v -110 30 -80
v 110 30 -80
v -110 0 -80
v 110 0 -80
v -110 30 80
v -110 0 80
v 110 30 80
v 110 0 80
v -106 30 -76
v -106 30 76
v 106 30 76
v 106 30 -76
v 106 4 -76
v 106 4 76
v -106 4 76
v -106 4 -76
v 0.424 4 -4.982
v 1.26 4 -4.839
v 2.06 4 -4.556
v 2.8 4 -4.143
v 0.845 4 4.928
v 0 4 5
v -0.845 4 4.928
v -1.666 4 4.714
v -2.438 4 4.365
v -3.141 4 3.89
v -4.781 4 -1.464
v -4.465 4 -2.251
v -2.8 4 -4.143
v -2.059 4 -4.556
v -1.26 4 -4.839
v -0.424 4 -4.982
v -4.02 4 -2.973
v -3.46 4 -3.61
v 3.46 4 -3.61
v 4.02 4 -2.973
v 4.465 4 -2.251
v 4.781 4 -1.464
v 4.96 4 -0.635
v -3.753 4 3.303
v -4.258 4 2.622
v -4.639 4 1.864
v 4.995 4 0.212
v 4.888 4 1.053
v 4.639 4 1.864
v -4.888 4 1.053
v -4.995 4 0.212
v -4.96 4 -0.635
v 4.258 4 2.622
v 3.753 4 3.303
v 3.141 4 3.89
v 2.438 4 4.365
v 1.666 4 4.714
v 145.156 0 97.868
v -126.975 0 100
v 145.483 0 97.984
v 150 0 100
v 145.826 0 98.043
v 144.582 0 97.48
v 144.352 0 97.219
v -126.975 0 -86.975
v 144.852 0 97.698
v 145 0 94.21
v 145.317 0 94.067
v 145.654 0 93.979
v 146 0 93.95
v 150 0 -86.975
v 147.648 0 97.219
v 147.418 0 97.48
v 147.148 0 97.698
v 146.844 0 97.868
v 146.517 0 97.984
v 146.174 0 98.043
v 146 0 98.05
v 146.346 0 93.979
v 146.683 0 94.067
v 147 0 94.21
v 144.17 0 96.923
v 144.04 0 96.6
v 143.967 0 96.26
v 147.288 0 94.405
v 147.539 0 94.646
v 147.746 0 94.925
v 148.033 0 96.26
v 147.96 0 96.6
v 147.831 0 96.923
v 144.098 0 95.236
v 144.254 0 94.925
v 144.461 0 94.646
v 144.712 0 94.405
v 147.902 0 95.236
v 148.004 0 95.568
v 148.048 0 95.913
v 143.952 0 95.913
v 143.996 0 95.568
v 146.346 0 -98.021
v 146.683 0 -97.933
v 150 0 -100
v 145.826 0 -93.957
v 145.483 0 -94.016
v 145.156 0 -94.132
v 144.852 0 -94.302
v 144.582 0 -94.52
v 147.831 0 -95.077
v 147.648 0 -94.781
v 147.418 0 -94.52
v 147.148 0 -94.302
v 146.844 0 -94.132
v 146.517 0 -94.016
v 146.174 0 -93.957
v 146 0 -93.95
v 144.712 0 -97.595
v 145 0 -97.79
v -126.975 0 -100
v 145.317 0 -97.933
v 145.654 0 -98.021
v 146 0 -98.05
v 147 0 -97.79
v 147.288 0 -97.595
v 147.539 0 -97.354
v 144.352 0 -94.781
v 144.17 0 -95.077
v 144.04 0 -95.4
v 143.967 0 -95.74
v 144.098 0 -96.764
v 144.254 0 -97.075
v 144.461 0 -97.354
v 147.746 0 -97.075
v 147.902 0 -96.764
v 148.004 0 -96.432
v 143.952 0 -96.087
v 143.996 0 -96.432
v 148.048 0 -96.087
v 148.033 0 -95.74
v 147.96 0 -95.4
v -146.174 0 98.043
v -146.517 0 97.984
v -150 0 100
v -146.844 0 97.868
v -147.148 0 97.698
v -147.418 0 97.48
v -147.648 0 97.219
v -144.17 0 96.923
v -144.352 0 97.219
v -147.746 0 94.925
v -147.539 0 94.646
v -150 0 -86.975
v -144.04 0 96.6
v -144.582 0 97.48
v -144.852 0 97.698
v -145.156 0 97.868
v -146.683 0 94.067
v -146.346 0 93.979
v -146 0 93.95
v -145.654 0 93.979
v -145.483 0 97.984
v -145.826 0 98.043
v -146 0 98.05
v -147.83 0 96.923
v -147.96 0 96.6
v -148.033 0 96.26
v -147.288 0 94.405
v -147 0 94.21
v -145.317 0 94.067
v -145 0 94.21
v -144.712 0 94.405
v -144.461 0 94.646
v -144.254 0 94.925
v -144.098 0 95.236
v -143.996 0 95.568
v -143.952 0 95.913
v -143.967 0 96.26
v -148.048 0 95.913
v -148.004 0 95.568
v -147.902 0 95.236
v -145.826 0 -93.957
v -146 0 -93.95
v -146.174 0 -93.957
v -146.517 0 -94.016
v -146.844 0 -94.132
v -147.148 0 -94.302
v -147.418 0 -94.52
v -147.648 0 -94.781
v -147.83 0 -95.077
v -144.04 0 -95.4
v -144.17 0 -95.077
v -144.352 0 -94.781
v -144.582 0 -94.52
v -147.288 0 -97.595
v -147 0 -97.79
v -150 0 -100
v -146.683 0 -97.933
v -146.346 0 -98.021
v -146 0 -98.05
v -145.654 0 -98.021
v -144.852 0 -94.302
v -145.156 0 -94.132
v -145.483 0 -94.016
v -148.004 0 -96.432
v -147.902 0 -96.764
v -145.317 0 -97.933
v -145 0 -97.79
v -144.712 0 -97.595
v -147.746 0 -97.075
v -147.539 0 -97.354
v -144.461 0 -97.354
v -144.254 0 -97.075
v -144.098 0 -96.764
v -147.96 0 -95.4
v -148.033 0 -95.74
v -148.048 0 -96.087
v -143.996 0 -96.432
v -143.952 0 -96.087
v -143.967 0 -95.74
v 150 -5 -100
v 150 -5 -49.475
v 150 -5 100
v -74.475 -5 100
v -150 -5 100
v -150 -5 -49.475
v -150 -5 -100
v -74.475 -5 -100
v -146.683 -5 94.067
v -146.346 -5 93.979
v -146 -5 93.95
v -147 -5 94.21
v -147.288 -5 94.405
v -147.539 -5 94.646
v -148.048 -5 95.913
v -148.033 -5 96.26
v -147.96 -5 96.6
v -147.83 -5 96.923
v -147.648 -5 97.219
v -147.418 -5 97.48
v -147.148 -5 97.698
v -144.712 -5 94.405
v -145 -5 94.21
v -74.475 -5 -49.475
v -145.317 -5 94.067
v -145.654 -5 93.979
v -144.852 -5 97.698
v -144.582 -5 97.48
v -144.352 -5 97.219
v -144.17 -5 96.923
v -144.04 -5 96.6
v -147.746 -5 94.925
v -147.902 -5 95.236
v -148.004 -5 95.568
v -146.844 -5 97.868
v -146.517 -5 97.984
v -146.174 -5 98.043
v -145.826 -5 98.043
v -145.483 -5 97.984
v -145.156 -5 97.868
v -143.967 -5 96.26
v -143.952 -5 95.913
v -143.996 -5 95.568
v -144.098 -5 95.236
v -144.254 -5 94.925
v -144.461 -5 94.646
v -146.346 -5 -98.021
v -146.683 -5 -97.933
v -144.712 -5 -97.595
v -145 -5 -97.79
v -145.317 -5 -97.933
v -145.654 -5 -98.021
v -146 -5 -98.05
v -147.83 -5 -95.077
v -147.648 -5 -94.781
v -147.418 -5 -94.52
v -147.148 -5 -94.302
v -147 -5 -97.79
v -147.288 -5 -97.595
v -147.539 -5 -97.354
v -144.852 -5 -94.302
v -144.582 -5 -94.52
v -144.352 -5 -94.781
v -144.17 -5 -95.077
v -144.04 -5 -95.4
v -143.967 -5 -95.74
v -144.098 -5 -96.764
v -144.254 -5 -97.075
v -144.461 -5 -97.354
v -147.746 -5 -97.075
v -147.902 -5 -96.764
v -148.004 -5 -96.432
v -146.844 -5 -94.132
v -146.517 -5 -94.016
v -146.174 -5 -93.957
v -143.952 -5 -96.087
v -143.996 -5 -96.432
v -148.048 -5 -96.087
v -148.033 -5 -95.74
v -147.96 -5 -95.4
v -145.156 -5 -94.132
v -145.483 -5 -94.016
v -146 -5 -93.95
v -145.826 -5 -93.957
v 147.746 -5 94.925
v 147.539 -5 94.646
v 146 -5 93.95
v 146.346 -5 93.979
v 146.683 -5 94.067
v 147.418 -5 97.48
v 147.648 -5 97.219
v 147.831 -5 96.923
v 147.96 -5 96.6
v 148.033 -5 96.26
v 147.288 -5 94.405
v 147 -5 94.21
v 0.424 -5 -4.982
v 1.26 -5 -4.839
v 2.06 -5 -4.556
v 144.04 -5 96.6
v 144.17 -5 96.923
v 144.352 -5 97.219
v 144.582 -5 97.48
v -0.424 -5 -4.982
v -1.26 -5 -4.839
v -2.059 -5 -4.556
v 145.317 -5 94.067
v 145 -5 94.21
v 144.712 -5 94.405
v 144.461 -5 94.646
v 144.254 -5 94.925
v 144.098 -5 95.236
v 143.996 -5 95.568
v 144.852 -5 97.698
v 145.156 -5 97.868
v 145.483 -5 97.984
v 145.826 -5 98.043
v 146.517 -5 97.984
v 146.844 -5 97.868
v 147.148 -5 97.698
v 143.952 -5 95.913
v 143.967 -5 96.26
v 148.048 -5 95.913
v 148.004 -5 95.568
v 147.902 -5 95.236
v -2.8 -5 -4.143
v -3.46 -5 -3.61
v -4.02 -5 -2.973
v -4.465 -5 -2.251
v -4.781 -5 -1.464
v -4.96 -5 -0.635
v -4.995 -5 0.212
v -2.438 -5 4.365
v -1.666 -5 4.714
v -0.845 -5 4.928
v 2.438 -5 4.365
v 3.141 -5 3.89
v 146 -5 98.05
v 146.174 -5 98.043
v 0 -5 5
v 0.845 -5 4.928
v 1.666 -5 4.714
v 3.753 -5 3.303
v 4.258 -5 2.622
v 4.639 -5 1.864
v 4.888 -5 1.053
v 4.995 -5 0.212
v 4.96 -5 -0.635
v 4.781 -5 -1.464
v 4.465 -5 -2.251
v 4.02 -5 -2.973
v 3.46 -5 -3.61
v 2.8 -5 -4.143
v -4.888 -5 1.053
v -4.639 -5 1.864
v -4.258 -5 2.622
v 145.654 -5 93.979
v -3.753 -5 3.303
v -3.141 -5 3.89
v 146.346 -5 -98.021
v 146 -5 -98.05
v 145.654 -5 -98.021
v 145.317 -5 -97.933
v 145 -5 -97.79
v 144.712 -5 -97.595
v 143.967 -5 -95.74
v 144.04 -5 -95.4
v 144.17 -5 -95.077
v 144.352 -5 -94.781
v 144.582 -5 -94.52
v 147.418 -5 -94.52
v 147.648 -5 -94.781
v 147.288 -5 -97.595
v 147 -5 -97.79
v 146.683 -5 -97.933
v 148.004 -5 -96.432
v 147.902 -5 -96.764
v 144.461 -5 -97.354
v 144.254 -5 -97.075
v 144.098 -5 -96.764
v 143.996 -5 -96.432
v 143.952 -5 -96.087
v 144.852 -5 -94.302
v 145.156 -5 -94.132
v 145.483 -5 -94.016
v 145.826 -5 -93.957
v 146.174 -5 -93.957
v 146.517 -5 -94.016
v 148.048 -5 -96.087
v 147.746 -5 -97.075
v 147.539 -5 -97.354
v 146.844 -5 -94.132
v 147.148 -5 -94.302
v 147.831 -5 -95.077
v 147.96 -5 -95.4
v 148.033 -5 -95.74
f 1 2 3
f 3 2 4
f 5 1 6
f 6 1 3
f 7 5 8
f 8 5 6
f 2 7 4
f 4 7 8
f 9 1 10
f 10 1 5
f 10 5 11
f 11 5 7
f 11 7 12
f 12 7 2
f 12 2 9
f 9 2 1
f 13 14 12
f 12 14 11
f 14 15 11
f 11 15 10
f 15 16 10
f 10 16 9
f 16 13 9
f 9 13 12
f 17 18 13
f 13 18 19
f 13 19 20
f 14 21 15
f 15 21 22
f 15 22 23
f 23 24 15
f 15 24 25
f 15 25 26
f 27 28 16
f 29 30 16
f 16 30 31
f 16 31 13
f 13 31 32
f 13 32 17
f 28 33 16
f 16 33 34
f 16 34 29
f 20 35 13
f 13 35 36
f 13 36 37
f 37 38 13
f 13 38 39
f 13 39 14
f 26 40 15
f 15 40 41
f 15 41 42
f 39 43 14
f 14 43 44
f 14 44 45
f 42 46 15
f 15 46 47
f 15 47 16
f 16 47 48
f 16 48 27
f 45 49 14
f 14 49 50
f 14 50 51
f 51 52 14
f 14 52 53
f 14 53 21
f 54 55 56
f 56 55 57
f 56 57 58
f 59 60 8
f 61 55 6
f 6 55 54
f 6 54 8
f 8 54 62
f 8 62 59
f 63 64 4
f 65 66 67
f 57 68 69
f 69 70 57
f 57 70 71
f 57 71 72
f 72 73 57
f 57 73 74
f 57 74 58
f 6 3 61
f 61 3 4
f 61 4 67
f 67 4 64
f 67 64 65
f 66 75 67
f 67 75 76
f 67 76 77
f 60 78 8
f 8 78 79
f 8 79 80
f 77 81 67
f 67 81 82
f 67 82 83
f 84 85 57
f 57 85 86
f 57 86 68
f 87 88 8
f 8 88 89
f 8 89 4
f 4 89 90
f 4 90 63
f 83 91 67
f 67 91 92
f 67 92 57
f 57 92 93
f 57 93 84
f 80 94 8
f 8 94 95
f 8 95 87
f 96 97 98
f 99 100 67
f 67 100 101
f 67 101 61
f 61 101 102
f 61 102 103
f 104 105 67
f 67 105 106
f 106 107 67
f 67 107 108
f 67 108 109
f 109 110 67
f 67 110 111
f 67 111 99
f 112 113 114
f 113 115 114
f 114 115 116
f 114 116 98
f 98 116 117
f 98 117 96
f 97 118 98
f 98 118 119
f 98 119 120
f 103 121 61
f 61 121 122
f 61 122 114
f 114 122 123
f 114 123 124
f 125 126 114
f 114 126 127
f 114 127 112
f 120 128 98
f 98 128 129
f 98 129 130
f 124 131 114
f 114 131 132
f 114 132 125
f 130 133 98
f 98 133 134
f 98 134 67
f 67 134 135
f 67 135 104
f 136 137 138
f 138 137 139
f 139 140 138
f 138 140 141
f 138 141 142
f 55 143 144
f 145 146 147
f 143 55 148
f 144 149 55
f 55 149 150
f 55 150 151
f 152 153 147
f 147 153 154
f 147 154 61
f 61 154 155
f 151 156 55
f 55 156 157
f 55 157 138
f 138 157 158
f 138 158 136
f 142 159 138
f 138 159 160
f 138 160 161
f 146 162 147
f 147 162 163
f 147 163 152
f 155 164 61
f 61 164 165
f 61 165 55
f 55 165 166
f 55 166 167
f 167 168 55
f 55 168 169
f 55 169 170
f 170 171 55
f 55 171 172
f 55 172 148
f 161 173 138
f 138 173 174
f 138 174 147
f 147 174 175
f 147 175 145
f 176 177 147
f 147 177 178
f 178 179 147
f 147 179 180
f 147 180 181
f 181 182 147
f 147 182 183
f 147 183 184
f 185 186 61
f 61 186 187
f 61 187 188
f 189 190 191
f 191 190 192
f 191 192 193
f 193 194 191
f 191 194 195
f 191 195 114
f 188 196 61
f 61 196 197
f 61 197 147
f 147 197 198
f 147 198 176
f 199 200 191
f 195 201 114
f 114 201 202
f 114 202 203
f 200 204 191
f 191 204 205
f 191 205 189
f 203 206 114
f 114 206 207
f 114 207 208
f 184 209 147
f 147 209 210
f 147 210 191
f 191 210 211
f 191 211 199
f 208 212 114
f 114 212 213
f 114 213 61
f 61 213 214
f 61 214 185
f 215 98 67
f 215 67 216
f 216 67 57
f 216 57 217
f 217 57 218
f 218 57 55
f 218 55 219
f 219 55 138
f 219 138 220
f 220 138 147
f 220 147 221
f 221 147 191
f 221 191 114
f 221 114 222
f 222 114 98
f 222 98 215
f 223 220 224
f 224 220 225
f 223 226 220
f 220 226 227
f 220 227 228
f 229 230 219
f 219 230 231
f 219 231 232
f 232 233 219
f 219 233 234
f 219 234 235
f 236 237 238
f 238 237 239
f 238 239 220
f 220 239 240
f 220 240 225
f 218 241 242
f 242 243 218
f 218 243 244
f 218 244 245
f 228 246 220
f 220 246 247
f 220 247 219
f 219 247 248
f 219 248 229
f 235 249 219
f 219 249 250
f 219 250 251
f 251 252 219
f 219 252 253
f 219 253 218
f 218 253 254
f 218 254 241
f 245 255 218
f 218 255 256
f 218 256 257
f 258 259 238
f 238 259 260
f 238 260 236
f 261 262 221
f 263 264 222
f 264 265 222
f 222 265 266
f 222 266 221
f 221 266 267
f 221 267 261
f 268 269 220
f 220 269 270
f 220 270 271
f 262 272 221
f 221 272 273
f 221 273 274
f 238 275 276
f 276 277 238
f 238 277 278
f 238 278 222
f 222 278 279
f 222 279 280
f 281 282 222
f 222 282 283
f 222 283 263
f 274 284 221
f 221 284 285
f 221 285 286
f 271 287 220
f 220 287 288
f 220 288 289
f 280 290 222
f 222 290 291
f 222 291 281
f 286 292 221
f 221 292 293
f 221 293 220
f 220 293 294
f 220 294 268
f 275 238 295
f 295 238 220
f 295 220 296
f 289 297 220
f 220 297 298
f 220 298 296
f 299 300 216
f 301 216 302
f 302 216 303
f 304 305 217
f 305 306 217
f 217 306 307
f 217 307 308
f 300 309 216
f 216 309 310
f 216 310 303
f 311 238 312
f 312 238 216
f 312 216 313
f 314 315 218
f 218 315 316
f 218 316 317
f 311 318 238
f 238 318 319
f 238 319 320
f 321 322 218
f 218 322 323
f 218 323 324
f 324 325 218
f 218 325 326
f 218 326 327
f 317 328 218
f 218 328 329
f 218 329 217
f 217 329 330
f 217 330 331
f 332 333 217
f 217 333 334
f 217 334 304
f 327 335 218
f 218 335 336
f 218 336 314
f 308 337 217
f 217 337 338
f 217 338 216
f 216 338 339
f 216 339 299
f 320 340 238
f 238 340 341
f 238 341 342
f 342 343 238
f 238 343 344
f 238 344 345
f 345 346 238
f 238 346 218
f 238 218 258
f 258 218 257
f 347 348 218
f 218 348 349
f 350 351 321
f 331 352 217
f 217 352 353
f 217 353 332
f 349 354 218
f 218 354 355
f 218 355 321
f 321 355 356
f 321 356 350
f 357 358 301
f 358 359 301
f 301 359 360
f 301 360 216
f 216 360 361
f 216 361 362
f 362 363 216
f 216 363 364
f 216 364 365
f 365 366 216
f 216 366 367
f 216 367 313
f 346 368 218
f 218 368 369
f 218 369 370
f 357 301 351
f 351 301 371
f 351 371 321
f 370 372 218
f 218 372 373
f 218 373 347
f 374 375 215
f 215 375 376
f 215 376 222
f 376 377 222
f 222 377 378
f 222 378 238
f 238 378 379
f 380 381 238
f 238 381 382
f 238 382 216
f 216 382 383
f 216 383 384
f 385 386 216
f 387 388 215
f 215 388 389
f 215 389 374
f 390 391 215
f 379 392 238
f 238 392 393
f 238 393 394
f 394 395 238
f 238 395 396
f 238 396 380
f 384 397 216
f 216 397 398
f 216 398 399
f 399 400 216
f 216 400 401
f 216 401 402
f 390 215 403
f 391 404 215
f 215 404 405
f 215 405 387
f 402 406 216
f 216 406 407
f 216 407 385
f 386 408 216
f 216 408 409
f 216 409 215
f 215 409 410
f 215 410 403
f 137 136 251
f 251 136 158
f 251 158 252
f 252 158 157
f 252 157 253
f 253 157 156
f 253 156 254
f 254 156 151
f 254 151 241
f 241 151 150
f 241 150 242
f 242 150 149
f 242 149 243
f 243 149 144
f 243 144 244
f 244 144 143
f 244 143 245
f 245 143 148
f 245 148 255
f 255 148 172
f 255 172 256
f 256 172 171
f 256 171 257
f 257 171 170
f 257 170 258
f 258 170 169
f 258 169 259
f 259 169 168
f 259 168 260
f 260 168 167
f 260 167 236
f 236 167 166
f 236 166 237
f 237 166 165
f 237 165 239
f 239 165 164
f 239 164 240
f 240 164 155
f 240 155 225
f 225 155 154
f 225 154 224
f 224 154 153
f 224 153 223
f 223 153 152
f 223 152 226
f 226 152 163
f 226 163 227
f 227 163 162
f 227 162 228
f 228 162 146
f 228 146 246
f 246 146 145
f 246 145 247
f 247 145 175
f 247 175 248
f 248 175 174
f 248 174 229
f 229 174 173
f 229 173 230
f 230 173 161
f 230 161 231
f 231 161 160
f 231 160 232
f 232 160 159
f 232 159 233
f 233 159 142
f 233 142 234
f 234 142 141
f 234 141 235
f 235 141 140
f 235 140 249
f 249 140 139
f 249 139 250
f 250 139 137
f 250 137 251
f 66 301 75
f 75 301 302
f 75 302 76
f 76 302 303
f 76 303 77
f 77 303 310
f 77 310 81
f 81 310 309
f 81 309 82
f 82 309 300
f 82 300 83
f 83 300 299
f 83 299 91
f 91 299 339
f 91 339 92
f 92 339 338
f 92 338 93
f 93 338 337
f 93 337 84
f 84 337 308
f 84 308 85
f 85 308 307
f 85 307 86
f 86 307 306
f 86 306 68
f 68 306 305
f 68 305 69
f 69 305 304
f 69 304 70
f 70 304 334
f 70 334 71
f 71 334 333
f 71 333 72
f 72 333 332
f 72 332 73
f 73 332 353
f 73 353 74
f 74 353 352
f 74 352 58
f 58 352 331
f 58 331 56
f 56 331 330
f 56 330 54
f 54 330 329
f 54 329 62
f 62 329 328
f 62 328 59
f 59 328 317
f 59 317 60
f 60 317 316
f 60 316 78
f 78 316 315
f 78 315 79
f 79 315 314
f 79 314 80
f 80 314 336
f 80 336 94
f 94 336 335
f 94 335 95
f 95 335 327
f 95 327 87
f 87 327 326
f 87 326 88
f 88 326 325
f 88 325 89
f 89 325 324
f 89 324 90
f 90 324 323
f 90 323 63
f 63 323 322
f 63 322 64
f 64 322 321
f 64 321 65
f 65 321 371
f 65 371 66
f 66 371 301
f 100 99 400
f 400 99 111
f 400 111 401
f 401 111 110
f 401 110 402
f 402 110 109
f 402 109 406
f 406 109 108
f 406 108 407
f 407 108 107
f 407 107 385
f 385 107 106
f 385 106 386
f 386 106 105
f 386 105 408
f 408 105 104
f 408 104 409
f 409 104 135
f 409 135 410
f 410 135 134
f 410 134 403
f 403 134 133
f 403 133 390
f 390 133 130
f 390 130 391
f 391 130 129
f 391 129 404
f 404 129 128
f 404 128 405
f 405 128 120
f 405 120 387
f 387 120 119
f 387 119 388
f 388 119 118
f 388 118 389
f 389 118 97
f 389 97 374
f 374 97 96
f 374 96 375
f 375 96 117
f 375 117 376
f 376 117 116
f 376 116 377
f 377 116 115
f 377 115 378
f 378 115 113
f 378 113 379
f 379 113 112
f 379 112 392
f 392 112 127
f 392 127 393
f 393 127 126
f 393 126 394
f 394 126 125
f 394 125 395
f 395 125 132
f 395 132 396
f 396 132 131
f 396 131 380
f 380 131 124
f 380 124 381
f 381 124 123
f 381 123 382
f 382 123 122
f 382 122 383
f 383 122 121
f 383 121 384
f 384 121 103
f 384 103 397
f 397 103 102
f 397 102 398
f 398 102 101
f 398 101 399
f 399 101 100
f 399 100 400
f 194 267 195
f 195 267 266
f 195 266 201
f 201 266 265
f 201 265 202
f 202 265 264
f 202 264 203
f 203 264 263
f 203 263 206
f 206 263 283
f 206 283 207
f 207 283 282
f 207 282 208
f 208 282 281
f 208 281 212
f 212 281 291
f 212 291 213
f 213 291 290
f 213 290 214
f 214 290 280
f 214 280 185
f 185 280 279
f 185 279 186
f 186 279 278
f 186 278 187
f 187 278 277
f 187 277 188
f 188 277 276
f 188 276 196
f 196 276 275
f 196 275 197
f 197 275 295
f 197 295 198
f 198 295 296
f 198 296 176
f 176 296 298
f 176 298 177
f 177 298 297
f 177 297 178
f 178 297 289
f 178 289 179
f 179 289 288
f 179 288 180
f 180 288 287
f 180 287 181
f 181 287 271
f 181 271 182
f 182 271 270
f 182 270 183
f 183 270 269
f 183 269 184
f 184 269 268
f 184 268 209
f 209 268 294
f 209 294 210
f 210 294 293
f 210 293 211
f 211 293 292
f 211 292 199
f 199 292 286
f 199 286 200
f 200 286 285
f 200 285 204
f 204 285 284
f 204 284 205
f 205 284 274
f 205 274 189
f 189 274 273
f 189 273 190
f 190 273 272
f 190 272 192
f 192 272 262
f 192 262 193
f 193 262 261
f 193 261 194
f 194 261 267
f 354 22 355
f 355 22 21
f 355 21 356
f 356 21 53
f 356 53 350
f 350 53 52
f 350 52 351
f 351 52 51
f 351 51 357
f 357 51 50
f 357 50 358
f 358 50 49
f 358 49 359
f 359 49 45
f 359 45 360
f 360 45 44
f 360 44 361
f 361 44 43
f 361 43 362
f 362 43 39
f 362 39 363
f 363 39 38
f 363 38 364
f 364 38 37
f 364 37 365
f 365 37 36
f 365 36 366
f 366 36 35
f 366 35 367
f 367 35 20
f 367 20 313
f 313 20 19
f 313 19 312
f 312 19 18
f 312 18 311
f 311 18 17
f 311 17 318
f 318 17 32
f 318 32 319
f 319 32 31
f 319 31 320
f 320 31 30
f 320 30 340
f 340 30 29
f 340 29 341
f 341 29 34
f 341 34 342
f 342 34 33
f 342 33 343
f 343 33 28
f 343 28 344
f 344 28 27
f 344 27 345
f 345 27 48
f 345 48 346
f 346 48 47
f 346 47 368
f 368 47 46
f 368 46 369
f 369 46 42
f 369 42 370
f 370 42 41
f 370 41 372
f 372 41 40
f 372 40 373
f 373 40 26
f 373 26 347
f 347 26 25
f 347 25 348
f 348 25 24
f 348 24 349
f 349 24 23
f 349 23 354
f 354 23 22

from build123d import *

# Parameters (mm, degrees)
SKETCH2_W           = 220
SKETCH2_H           = 160
BOSS_EXTRUDE1_DEPTH = 30
SKETCH3_W           = 212
SKETCH3_H           = 152
CUT_EXTRUDE1_DEPTH  = 26
SKETCH4_W           = 300
SKETCH4_H           = 200
BOSS_EXTRUDE2_DEPTH = 5
CUT_EXTRUDE2_REACH  = 185.644
SKETCH5_R           = 2.05
SKETCH6_R           = 5
CUT_EXTRUDE3_DEPTH  = 183.14280112


with BuildPart() as part:
    # Sketch2 → Boss-Extrude1 (new body)
    with BuildSketch(Plane(origin=(0, 0, 0), x_dir=(1, 0, 0), z_dir=(0, 1, 0))):
        Rectangle(SKETCH2_W, SKETCH2_H)
    extrude(amount=BOSS_EXTRUDE1_DEPTH)

    # Sketch3 → Cut-Extrude1 (cut)
    with BuildSketch(Plane(origin=(0, 30, 0), x_dir=(1, 0, 0), z_dir=(0, 1, 0))):
        Rectangle(SKETCH3_W, SKETCH3_H)
    extrude(amount=-CUT_EXTRUDE1_DEPTH, mode=Mode.SUBTRACT)

    # Sketch4 → Boss-Extrude2 (add)
    with BuildSketch(Plane.XZ):
        Rectangle(SKETCH4_W, SKETCH4_H)
    extrude(amount=BOSS_EXTRUDE2_DEPTH)

    # Sketch5 → Cut-Extrude2 (cut, up to next)
    with BuildSketch(Plane.XZ.offset(5), mode=Mode.PRIVATE) as cut_extrude2_sk1:
        with Locations(Location((-146, 96, 0), (0, 0, 270))):
            Circle(SKETCH5_R)
    cut_extrude2_tool1 = extrude(cut_extrude2_sk1.sketch, amount=-CUT_EXTRUDE2_REACH, mode=Mode.PRIVATE) & part.part
    # Sketch5 → Cut-Extrude2 (cut, up to next)
    with BuildSketch(Plane.XZ.offset(5), mode=Mode.PRIVATE) as cut_extrude2_sk2:
        with Locations(Location((146, 96, 0), (0, 0, 90))):
            Circle(SKETCH5_R)
    cut_extrude2_tool2 = extrude(cut_extrude2_sk2.sketch, amount=-CUT_EXTRUDE2_REACH, mode=Mode.PRIVATE) & part.part
    # Sketch5 → Cut-Extrude2 (cut, up to next)
    with BuildSketch(Plane.XZ.offset(5), mode=Mode.PRIVATE) as cut_extrude2_sk3:
        with Locations(Location((146, -96, 0), (0, 0, 270))):
            Circle(SKETCH5_R)
    cut_extrude2_tool3 = extrude(cut_extrude2_sk3.sketch, amount=-CUT_EXTRUDE2_REACH, mode=Mode.PRIVATE) & part.part
    # Sketch5 → Cut-Extrude2 (cut, up to next)
    with BuildSketch(Plane.XZ.offset(5), mode=Mode.PRIVATE) as cut_extrude2_sk4:
        with Locations(Location((-146, -96, 0), (0, 0, 90))):
            Circle(SKETCH5_R)
    cut_extrude2_tool4 = extrude(cut_extrude2_sk4.sketch, amount=-CUT_EXTRUDE2_REACH, mode=Mode.PRIVATE) & part.part
    add(cut_extrude2_tool1.solids().sort_by_distance((-146, -5, 96))[0], mode=Mode.SUBTRACT)
    add(cut_extrude2_tool2.solids().sort_by_distance((146, -5, 96))[0], mode=Mode.SUBTRACT)
    add(cut_extrude2_tool3.solids().sort_by_distance((146, -5, -96))[0], mode=Mode.SUBTRACT)
    add(cut_extrude2_tool4.solids().sort_by_distance((-146, -5, -96))[0], mode=Mode.SUBTRACT)

    # Sketch6 → Cut-Extrude3 (cut, through all)
    with BuildSketch(Plane(origin=(0, 4, 0), x_dir=(1, 0, 0), z_dir=(0, 1, 0))):
        with Locations(Location((0, 0, 0), (0, 0, 270))):
            Circle(SKETCH6_R)
    extrude(amount=-CUT_EXTRUDE3_DEPTH, mode=Mode.SUBTRACT)


solid = part.part
